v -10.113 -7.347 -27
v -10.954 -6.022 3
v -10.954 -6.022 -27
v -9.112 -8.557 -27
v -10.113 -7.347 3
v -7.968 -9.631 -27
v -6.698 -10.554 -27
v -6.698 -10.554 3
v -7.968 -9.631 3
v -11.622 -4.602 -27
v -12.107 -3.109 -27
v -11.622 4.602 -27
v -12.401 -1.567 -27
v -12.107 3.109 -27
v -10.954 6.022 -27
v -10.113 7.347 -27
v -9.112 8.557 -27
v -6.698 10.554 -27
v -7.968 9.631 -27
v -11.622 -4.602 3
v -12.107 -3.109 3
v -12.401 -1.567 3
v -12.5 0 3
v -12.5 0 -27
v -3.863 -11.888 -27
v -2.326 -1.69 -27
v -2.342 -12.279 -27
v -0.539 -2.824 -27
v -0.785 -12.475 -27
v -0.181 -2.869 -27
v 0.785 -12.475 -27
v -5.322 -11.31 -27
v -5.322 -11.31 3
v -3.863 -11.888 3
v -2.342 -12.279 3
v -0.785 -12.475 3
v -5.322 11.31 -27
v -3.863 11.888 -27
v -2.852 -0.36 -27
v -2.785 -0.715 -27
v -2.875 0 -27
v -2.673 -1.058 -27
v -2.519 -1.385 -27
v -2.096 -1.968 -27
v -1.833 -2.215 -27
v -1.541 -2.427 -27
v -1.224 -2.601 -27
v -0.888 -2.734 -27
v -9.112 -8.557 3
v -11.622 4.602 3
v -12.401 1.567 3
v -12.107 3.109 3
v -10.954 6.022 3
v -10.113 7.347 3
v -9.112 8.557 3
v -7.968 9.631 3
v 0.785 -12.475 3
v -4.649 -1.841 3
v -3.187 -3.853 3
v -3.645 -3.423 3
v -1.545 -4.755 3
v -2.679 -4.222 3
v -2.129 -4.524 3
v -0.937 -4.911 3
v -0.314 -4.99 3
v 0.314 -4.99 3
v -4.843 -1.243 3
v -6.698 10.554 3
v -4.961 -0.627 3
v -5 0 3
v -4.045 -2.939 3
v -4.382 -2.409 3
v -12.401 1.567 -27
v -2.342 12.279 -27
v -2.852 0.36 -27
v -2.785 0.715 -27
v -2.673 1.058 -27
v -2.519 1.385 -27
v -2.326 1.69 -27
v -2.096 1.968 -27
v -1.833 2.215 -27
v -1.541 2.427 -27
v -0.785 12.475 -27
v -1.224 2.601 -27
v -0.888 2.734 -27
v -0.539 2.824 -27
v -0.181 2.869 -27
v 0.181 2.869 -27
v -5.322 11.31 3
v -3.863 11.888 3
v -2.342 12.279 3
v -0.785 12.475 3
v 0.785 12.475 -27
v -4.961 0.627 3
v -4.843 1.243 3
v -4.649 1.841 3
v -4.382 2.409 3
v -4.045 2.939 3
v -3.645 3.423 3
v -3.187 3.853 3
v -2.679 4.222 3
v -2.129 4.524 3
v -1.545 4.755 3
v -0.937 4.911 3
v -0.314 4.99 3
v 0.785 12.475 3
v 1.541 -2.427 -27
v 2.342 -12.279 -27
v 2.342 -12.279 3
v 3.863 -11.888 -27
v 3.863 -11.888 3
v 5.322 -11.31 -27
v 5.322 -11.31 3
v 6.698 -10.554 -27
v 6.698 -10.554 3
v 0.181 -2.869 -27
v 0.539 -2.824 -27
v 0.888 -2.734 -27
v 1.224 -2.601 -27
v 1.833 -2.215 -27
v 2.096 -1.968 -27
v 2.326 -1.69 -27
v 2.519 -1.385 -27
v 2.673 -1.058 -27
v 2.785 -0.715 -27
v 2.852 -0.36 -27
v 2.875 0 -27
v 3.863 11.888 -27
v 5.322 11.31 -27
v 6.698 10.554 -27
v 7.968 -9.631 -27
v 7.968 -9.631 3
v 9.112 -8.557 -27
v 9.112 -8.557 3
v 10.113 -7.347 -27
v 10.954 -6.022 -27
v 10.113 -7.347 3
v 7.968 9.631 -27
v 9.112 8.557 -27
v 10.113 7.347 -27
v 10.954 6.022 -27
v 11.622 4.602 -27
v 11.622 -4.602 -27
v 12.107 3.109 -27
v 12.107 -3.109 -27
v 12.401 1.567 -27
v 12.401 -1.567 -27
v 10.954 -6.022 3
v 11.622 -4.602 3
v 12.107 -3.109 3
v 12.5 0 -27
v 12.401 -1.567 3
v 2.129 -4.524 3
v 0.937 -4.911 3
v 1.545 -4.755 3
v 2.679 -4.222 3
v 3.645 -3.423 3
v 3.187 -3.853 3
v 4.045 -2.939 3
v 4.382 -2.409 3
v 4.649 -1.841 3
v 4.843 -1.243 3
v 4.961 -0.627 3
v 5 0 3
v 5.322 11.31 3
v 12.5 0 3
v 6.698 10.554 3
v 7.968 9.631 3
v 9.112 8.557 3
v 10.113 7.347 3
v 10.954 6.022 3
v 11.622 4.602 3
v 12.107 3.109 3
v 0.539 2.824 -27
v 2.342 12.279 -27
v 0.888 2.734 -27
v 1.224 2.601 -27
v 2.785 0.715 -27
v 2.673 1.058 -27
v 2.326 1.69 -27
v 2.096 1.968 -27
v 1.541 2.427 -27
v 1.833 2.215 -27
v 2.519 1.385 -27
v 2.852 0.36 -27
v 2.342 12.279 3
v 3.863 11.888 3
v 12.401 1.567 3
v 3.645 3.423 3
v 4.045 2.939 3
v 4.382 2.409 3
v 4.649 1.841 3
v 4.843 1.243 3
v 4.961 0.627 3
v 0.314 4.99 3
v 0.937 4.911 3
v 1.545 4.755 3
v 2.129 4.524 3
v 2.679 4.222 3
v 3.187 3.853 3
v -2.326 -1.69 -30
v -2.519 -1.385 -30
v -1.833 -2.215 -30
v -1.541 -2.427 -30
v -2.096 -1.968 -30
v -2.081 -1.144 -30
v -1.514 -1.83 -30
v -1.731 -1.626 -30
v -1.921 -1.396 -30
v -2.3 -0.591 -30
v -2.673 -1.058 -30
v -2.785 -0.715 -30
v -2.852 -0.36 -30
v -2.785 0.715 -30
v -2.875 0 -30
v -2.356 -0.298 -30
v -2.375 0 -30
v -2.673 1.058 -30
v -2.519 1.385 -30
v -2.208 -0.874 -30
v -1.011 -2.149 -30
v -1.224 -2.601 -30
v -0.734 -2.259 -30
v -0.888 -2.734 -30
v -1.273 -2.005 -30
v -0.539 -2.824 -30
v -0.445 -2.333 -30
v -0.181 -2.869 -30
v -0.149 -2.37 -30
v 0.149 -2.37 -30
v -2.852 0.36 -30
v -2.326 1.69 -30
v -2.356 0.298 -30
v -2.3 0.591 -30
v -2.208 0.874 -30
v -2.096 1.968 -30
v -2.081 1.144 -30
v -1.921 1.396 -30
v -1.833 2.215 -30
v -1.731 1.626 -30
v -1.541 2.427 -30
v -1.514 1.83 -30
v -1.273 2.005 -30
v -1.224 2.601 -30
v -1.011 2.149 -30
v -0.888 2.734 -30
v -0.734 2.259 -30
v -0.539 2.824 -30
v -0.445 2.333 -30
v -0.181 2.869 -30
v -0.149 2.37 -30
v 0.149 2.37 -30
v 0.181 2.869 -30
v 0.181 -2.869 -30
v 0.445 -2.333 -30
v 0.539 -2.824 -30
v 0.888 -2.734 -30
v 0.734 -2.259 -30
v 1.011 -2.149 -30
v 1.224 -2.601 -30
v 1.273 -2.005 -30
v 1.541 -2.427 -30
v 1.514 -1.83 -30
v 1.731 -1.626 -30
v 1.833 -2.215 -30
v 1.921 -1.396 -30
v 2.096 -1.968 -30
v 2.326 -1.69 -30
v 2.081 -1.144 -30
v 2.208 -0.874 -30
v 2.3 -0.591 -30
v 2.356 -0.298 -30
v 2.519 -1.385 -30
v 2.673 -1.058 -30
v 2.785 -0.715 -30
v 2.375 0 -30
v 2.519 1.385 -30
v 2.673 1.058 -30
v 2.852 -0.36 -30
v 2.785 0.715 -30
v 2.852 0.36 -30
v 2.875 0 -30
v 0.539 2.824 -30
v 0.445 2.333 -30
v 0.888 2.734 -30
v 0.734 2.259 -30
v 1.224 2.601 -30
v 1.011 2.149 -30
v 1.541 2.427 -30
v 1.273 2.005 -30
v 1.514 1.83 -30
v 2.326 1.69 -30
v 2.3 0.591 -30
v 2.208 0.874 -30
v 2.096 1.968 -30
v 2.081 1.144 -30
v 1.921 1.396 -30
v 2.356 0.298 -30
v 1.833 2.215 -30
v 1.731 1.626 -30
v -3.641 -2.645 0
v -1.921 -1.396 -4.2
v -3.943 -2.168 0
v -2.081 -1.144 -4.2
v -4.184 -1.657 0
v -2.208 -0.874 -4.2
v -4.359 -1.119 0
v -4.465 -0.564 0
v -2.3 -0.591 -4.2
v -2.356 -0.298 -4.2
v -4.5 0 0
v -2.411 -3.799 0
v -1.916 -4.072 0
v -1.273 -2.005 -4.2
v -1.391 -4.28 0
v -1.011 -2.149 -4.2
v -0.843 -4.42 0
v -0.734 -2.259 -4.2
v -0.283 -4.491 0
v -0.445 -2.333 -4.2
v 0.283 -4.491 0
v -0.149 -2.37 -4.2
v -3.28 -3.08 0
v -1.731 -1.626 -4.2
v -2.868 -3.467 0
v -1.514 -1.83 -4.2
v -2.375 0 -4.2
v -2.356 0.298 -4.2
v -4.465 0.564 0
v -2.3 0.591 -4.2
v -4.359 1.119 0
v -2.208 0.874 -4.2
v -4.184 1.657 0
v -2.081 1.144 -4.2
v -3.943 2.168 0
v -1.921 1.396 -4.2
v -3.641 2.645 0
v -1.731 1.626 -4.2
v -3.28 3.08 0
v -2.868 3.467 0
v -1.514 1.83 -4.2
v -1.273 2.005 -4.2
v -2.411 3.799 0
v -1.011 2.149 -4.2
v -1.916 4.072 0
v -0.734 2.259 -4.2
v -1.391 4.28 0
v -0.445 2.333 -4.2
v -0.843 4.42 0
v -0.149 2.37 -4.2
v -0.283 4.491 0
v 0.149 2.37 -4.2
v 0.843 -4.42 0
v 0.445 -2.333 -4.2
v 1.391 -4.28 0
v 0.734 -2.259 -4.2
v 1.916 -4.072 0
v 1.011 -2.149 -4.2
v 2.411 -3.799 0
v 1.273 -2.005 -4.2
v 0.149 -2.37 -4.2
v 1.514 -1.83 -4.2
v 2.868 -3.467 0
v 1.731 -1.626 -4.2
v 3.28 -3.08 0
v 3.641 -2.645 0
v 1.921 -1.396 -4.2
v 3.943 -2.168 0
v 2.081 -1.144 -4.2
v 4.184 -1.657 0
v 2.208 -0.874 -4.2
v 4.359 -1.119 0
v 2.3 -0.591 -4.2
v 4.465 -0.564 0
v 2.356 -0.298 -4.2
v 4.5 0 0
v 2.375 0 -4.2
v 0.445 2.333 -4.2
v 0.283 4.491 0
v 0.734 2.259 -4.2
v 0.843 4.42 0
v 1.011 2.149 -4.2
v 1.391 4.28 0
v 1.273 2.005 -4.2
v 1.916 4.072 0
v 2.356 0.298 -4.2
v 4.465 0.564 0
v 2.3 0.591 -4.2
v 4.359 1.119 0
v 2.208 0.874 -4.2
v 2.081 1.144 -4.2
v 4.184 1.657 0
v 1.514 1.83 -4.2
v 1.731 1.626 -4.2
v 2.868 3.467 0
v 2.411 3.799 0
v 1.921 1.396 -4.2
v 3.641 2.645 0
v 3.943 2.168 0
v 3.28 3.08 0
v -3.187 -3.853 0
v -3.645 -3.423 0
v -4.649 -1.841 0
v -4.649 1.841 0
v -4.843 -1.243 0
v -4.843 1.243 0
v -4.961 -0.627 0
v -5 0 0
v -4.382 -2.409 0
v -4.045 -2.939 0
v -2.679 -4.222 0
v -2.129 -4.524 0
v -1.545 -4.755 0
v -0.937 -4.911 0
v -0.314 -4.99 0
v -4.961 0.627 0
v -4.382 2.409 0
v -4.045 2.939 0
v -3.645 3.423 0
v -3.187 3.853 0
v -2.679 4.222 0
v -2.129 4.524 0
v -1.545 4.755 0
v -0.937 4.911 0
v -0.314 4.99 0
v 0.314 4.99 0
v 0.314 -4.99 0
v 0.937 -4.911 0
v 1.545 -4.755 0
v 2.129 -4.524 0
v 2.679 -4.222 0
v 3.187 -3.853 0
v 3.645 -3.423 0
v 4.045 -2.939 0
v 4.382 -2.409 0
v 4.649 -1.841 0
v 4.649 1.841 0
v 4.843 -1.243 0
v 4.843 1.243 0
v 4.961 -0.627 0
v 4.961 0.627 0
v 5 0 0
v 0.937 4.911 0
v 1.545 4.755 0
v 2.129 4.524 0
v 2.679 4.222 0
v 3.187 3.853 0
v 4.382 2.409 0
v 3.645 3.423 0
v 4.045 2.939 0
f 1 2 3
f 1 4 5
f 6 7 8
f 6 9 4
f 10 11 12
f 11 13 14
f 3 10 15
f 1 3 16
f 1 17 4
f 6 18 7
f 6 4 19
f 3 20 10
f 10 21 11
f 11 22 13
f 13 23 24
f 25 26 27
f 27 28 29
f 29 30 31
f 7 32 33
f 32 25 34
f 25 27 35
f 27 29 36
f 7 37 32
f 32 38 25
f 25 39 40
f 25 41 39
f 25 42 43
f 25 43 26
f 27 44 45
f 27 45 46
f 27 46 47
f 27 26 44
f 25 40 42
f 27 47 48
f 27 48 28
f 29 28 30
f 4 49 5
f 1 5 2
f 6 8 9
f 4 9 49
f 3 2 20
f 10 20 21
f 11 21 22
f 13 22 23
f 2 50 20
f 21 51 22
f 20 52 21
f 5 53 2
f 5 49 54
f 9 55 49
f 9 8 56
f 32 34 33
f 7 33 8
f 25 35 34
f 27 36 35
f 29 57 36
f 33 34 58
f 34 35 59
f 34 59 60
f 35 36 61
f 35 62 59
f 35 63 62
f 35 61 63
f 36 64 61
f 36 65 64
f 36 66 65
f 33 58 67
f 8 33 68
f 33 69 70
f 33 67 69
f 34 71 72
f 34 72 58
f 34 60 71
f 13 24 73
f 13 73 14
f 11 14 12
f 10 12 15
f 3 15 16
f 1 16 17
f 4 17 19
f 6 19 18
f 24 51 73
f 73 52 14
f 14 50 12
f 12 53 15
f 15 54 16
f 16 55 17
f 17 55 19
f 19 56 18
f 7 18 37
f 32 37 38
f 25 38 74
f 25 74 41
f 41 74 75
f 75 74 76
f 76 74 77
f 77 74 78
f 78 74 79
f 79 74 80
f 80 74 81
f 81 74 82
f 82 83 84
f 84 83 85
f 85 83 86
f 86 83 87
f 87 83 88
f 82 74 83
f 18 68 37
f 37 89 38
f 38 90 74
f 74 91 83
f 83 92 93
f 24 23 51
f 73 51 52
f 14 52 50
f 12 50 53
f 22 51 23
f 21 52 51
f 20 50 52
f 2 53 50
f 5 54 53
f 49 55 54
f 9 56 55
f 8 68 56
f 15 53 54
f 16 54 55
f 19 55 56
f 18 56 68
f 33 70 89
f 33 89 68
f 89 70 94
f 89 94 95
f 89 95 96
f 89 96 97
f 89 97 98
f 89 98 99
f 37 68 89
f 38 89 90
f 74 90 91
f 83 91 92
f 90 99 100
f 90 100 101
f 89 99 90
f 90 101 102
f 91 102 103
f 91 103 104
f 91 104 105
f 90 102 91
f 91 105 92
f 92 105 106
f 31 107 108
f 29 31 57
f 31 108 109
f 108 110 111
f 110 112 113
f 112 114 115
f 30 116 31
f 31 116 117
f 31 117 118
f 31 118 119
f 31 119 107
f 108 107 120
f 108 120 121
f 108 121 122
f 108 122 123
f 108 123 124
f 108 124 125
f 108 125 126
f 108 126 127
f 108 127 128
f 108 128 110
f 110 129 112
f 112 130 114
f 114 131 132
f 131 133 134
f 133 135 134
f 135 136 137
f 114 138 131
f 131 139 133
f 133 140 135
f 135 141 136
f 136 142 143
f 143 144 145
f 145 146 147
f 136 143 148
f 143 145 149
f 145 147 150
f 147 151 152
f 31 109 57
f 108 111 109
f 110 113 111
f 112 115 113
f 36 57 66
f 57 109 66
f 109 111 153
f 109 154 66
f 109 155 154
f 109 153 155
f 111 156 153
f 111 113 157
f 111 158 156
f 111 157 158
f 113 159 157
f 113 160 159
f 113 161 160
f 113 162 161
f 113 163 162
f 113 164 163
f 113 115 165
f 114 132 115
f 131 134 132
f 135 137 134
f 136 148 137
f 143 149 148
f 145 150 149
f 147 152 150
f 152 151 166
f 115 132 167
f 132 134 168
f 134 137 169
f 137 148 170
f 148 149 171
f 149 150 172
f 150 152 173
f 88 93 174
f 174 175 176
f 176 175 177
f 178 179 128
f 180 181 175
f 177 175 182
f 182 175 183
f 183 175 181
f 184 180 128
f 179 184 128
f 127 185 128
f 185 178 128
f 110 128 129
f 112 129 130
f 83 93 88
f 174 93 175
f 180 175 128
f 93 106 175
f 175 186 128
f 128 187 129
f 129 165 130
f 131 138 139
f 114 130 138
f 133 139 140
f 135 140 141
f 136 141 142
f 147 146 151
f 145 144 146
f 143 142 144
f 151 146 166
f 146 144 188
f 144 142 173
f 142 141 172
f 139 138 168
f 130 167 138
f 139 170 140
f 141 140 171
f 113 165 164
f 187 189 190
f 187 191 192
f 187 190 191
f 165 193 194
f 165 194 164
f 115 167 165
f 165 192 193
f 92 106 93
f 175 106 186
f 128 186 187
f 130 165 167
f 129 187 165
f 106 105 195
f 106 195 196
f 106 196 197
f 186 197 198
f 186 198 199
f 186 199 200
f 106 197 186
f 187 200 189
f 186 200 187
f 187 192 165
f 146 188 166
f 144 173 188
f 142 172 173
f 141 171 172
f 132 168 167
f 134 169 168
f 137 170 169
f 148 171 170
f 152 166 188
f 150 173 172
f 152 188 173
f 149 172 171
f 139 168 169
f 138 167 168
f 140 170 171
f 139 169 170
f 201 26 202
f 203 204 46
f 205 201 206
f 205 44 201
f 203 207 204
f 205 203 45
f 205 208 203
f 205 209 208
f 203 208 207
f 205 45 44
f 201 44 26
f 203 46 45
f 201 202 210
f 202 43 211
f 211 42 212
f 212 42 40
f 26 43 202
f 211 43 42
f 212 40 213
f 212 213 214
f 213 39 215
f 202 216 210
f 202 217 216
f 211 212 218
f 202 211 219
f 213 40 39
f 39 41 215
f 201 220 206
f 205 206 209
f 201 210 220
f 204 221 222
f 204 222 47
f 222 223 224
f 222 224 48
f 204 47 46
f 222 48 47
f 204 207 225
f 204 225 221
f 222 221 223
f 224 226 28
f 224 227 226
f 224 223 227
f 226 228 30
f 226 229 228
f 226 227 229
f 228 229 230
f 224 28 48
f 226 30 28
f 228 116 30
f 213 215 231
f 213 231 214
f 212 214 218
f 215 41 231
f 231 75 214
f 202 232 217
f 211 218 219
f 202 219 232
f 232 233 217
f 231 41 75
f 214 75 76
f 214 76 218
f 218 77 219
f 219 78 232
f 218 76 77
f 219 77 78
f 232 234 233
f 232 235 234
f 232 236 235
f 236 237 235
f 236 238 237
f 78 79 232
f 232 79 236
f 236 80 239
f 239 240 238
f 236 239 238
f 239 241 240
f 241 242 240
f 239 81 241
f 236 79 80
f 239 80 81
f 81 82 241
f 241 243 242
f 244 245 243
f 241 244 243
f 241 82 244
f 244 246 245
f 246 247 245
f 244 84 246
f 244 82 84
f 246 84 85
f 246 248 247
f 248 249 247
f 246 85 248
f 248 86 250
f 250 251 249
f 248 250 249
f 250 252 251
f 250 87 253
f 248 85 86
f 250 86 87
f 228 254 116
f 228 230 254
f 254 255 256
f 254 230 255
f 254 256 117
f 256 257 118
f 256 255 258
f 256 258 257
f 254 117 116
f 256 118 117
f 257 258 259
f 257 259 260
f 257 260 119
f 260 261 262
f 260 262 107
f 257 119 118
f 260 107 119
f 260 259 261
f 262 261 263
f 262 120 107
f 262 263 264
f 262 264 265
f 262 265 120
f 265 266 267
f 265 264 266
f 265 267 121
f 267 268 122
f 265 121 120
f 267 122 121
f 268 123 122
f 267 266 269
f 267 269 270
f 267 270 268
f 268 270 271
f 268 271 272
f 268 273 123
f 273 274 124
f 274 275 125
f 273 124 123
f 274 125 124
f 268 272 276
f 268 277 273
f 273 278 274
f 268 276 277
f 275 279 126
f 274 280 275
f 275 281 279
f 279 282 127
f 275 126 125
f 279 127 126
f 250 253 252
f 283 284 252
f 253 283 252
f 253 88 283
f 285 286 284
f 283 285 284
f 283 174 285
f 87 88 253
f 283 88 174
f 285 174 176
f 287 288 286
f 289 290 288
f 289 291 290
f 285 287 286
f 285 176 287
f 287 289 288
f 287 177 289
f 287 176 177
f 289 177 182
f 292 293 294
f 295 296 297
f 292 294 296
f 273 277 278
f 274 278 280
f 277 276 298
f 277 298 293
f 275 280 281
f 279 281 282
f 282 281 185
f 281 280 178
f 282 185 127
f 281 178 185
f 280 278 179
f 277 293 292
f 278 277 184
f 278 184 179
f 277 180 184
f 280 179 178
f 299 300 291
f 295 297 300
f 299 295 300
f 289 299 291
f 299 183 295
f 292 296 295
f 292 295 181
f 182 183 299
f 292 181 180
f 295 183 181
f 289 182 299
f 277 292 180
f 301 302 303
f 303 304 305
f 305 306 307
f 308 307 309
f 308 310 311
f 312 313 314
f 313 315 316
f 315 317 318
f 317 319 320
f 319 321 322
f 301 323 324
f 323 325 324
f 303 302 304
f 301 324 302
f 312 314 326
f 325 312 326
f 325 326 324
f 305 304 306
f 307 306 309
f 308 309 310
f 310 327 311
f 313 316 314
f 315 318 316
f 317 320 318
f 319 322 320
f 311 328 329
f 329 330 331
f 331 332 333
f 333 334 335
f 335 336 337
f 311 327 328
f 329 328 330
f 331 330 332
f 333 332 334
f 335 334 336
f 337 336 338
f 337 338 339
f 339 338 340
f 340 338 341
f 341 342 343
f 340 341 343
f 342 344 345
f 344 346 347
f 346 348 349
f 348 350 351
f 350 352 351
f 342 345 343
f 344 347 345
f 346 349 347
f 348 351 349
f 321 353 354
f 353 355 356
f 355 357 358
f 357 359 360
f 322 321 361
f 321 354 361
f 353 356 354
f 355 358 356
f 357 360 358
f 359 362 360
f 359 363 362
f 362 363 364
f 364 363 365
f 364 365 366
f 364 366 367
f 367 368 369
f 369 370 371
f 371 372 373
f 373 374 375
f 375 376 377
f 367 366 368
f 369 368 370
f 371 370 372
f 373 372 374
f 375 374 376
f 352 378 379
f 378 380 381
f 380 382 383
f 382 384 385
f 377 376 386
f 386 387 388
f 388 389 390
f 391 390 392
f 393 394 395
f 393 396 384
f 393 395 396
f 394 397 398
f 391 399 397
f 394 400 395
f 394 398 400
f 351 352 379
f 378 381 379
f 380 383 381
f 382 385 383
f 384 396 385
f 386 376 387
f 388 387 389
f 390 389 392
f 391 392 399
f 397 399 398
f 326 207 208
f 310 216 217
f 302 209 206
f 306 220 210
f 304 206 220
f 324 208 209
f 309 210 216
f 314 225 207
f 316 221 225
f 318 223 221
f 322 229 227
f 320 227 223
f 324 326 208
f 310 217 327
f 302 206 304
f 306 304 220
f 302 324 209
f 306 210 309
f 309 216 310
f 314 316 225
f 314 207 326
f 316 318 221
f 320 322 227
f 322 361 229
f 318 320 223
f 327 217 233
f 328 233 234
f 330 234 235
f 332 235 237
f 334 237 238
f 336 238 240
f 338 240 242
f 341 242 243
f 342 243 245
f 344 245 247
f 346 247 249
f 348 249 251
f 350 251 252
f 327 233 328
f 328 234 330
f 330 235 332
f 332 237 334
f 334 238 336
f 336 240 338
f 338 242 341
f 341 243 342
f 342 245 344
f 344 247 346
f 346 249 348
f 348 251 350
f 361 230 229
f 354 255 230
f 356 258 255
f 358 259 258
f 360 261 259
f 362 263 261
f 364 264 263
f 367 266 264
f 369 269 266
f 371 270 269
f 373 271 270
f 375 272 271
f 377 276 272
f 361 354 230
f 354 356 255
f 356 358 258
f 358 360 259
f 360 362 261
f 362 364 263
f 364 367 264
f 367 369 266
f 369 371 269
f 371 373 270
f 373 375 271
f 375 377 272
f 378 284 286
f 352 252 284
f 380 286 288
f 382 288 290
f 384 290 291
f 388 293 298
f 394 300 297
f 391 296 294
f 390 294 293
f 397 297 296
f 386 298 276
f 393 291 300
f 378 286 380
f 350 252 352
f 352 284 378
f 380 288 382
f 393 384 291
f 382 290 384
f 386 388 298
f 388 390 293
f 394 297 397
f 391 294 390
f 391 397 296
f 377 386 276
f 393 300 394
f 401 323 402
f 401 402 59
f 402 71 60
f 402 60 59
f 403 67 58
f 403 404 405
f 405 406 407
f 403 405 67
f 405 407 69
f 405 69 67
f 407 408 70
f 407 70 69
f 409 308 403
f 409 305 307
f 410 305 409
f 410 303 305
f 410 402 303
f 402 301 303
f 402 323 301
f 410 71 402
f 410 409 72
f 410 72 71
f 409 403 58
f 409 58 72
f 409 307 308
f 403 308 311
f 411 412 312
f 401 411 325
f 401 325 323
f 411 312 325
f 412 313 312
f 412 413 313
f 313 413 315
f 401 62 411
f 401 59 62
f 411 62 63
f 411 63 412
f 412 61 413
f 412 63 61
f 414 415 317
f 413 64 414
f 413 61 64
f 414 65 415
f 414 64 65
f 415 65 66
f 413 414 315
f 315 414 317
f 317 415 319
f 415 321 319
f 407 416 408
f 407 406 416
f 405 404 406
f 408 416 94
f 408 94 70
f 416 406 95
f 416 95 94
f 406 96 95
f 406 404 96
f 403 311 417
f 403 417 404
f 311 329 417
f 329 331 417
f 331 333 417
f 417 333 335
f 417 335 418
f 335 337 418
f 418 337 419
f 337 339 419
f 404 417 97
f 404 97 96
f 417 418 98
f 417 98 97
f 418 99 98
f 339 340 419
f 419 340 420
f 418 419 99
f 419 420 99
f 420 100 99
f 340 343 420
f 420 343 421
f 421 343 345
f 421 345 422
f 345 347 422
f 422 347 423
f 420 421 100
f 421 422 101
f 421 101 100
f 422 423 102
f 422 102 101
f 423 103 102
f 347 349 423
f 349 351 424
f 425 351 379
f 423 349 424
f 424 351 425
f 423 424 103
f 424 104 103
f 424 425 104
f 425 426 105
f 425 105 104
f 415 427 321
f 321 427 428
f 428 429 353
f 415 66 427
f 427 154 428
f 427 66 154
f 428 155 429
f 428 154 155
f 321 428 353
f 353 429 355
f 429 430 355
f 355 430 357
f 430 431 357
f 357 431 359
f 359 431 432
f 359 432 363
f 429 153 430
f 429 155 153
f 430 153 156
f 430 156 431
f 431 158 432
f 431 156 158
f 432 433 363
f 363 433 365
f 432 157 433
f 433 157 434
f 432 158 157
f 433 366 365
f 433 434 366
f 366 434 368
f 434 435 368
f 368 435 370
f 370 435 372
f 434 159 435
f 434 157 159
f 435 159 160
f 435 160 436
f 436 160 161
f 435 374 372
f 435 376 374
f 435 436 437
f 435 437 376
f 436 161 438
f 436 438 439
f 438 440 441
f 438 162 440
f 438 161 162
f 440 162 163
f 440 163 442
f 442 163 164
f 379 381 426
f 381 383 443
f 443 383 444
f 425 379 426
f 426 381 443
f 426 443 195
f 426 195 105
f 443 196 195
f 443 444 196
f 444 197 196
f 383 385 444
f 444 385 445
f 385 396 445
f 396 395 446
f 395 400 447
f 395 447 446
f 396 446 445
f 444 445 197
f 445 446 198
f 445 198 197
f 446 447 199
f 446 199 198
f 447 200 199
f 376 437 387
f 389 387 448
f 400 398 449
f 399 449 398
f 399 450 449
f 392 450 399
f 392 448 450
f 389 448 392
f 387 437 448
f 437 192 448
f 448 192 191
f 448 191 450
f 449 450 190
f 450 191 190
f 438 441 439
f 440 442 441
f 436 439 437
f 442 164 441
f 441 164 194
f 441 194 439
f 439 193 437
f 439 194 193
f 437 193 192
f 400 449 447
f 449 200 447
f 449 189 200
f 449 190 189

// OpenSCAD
$fn = 50;

difference() {
	union() {
		translate(v = [0, 0, -27.0]) {
			cylinder(h = 30, r = 12.5);
		}
		#translate(v = [0, 0, -30.0]) {
			cylinder(h = 30, r = 2.875);
		}
	}
	union() {
		translate(v = [0, 0, 0]) {
			rotate(a = [0, 0, 0]) {
				difference() {
					union() {
						translate(v = [0, 0, -30.0]) {
							cylinder(h = 30, r = 2.25);
						}
						translate(v = [0, 0, -4.2]) {
							cylinder(h = 4.2, r1 = 2.375, r2 = 4.5);
						}
						translate(v = [0, 0, -30.0]) {
							cylinder(h = 30, r = 2.375);
						}
						translate(v = [0, 0, -30.0]) {
							cylinder(h = 30, r = 2.25);
						}
					}
					union();
				}
			}
		}
		#cylinder(h = 3, r = 5.0);
	}
}
